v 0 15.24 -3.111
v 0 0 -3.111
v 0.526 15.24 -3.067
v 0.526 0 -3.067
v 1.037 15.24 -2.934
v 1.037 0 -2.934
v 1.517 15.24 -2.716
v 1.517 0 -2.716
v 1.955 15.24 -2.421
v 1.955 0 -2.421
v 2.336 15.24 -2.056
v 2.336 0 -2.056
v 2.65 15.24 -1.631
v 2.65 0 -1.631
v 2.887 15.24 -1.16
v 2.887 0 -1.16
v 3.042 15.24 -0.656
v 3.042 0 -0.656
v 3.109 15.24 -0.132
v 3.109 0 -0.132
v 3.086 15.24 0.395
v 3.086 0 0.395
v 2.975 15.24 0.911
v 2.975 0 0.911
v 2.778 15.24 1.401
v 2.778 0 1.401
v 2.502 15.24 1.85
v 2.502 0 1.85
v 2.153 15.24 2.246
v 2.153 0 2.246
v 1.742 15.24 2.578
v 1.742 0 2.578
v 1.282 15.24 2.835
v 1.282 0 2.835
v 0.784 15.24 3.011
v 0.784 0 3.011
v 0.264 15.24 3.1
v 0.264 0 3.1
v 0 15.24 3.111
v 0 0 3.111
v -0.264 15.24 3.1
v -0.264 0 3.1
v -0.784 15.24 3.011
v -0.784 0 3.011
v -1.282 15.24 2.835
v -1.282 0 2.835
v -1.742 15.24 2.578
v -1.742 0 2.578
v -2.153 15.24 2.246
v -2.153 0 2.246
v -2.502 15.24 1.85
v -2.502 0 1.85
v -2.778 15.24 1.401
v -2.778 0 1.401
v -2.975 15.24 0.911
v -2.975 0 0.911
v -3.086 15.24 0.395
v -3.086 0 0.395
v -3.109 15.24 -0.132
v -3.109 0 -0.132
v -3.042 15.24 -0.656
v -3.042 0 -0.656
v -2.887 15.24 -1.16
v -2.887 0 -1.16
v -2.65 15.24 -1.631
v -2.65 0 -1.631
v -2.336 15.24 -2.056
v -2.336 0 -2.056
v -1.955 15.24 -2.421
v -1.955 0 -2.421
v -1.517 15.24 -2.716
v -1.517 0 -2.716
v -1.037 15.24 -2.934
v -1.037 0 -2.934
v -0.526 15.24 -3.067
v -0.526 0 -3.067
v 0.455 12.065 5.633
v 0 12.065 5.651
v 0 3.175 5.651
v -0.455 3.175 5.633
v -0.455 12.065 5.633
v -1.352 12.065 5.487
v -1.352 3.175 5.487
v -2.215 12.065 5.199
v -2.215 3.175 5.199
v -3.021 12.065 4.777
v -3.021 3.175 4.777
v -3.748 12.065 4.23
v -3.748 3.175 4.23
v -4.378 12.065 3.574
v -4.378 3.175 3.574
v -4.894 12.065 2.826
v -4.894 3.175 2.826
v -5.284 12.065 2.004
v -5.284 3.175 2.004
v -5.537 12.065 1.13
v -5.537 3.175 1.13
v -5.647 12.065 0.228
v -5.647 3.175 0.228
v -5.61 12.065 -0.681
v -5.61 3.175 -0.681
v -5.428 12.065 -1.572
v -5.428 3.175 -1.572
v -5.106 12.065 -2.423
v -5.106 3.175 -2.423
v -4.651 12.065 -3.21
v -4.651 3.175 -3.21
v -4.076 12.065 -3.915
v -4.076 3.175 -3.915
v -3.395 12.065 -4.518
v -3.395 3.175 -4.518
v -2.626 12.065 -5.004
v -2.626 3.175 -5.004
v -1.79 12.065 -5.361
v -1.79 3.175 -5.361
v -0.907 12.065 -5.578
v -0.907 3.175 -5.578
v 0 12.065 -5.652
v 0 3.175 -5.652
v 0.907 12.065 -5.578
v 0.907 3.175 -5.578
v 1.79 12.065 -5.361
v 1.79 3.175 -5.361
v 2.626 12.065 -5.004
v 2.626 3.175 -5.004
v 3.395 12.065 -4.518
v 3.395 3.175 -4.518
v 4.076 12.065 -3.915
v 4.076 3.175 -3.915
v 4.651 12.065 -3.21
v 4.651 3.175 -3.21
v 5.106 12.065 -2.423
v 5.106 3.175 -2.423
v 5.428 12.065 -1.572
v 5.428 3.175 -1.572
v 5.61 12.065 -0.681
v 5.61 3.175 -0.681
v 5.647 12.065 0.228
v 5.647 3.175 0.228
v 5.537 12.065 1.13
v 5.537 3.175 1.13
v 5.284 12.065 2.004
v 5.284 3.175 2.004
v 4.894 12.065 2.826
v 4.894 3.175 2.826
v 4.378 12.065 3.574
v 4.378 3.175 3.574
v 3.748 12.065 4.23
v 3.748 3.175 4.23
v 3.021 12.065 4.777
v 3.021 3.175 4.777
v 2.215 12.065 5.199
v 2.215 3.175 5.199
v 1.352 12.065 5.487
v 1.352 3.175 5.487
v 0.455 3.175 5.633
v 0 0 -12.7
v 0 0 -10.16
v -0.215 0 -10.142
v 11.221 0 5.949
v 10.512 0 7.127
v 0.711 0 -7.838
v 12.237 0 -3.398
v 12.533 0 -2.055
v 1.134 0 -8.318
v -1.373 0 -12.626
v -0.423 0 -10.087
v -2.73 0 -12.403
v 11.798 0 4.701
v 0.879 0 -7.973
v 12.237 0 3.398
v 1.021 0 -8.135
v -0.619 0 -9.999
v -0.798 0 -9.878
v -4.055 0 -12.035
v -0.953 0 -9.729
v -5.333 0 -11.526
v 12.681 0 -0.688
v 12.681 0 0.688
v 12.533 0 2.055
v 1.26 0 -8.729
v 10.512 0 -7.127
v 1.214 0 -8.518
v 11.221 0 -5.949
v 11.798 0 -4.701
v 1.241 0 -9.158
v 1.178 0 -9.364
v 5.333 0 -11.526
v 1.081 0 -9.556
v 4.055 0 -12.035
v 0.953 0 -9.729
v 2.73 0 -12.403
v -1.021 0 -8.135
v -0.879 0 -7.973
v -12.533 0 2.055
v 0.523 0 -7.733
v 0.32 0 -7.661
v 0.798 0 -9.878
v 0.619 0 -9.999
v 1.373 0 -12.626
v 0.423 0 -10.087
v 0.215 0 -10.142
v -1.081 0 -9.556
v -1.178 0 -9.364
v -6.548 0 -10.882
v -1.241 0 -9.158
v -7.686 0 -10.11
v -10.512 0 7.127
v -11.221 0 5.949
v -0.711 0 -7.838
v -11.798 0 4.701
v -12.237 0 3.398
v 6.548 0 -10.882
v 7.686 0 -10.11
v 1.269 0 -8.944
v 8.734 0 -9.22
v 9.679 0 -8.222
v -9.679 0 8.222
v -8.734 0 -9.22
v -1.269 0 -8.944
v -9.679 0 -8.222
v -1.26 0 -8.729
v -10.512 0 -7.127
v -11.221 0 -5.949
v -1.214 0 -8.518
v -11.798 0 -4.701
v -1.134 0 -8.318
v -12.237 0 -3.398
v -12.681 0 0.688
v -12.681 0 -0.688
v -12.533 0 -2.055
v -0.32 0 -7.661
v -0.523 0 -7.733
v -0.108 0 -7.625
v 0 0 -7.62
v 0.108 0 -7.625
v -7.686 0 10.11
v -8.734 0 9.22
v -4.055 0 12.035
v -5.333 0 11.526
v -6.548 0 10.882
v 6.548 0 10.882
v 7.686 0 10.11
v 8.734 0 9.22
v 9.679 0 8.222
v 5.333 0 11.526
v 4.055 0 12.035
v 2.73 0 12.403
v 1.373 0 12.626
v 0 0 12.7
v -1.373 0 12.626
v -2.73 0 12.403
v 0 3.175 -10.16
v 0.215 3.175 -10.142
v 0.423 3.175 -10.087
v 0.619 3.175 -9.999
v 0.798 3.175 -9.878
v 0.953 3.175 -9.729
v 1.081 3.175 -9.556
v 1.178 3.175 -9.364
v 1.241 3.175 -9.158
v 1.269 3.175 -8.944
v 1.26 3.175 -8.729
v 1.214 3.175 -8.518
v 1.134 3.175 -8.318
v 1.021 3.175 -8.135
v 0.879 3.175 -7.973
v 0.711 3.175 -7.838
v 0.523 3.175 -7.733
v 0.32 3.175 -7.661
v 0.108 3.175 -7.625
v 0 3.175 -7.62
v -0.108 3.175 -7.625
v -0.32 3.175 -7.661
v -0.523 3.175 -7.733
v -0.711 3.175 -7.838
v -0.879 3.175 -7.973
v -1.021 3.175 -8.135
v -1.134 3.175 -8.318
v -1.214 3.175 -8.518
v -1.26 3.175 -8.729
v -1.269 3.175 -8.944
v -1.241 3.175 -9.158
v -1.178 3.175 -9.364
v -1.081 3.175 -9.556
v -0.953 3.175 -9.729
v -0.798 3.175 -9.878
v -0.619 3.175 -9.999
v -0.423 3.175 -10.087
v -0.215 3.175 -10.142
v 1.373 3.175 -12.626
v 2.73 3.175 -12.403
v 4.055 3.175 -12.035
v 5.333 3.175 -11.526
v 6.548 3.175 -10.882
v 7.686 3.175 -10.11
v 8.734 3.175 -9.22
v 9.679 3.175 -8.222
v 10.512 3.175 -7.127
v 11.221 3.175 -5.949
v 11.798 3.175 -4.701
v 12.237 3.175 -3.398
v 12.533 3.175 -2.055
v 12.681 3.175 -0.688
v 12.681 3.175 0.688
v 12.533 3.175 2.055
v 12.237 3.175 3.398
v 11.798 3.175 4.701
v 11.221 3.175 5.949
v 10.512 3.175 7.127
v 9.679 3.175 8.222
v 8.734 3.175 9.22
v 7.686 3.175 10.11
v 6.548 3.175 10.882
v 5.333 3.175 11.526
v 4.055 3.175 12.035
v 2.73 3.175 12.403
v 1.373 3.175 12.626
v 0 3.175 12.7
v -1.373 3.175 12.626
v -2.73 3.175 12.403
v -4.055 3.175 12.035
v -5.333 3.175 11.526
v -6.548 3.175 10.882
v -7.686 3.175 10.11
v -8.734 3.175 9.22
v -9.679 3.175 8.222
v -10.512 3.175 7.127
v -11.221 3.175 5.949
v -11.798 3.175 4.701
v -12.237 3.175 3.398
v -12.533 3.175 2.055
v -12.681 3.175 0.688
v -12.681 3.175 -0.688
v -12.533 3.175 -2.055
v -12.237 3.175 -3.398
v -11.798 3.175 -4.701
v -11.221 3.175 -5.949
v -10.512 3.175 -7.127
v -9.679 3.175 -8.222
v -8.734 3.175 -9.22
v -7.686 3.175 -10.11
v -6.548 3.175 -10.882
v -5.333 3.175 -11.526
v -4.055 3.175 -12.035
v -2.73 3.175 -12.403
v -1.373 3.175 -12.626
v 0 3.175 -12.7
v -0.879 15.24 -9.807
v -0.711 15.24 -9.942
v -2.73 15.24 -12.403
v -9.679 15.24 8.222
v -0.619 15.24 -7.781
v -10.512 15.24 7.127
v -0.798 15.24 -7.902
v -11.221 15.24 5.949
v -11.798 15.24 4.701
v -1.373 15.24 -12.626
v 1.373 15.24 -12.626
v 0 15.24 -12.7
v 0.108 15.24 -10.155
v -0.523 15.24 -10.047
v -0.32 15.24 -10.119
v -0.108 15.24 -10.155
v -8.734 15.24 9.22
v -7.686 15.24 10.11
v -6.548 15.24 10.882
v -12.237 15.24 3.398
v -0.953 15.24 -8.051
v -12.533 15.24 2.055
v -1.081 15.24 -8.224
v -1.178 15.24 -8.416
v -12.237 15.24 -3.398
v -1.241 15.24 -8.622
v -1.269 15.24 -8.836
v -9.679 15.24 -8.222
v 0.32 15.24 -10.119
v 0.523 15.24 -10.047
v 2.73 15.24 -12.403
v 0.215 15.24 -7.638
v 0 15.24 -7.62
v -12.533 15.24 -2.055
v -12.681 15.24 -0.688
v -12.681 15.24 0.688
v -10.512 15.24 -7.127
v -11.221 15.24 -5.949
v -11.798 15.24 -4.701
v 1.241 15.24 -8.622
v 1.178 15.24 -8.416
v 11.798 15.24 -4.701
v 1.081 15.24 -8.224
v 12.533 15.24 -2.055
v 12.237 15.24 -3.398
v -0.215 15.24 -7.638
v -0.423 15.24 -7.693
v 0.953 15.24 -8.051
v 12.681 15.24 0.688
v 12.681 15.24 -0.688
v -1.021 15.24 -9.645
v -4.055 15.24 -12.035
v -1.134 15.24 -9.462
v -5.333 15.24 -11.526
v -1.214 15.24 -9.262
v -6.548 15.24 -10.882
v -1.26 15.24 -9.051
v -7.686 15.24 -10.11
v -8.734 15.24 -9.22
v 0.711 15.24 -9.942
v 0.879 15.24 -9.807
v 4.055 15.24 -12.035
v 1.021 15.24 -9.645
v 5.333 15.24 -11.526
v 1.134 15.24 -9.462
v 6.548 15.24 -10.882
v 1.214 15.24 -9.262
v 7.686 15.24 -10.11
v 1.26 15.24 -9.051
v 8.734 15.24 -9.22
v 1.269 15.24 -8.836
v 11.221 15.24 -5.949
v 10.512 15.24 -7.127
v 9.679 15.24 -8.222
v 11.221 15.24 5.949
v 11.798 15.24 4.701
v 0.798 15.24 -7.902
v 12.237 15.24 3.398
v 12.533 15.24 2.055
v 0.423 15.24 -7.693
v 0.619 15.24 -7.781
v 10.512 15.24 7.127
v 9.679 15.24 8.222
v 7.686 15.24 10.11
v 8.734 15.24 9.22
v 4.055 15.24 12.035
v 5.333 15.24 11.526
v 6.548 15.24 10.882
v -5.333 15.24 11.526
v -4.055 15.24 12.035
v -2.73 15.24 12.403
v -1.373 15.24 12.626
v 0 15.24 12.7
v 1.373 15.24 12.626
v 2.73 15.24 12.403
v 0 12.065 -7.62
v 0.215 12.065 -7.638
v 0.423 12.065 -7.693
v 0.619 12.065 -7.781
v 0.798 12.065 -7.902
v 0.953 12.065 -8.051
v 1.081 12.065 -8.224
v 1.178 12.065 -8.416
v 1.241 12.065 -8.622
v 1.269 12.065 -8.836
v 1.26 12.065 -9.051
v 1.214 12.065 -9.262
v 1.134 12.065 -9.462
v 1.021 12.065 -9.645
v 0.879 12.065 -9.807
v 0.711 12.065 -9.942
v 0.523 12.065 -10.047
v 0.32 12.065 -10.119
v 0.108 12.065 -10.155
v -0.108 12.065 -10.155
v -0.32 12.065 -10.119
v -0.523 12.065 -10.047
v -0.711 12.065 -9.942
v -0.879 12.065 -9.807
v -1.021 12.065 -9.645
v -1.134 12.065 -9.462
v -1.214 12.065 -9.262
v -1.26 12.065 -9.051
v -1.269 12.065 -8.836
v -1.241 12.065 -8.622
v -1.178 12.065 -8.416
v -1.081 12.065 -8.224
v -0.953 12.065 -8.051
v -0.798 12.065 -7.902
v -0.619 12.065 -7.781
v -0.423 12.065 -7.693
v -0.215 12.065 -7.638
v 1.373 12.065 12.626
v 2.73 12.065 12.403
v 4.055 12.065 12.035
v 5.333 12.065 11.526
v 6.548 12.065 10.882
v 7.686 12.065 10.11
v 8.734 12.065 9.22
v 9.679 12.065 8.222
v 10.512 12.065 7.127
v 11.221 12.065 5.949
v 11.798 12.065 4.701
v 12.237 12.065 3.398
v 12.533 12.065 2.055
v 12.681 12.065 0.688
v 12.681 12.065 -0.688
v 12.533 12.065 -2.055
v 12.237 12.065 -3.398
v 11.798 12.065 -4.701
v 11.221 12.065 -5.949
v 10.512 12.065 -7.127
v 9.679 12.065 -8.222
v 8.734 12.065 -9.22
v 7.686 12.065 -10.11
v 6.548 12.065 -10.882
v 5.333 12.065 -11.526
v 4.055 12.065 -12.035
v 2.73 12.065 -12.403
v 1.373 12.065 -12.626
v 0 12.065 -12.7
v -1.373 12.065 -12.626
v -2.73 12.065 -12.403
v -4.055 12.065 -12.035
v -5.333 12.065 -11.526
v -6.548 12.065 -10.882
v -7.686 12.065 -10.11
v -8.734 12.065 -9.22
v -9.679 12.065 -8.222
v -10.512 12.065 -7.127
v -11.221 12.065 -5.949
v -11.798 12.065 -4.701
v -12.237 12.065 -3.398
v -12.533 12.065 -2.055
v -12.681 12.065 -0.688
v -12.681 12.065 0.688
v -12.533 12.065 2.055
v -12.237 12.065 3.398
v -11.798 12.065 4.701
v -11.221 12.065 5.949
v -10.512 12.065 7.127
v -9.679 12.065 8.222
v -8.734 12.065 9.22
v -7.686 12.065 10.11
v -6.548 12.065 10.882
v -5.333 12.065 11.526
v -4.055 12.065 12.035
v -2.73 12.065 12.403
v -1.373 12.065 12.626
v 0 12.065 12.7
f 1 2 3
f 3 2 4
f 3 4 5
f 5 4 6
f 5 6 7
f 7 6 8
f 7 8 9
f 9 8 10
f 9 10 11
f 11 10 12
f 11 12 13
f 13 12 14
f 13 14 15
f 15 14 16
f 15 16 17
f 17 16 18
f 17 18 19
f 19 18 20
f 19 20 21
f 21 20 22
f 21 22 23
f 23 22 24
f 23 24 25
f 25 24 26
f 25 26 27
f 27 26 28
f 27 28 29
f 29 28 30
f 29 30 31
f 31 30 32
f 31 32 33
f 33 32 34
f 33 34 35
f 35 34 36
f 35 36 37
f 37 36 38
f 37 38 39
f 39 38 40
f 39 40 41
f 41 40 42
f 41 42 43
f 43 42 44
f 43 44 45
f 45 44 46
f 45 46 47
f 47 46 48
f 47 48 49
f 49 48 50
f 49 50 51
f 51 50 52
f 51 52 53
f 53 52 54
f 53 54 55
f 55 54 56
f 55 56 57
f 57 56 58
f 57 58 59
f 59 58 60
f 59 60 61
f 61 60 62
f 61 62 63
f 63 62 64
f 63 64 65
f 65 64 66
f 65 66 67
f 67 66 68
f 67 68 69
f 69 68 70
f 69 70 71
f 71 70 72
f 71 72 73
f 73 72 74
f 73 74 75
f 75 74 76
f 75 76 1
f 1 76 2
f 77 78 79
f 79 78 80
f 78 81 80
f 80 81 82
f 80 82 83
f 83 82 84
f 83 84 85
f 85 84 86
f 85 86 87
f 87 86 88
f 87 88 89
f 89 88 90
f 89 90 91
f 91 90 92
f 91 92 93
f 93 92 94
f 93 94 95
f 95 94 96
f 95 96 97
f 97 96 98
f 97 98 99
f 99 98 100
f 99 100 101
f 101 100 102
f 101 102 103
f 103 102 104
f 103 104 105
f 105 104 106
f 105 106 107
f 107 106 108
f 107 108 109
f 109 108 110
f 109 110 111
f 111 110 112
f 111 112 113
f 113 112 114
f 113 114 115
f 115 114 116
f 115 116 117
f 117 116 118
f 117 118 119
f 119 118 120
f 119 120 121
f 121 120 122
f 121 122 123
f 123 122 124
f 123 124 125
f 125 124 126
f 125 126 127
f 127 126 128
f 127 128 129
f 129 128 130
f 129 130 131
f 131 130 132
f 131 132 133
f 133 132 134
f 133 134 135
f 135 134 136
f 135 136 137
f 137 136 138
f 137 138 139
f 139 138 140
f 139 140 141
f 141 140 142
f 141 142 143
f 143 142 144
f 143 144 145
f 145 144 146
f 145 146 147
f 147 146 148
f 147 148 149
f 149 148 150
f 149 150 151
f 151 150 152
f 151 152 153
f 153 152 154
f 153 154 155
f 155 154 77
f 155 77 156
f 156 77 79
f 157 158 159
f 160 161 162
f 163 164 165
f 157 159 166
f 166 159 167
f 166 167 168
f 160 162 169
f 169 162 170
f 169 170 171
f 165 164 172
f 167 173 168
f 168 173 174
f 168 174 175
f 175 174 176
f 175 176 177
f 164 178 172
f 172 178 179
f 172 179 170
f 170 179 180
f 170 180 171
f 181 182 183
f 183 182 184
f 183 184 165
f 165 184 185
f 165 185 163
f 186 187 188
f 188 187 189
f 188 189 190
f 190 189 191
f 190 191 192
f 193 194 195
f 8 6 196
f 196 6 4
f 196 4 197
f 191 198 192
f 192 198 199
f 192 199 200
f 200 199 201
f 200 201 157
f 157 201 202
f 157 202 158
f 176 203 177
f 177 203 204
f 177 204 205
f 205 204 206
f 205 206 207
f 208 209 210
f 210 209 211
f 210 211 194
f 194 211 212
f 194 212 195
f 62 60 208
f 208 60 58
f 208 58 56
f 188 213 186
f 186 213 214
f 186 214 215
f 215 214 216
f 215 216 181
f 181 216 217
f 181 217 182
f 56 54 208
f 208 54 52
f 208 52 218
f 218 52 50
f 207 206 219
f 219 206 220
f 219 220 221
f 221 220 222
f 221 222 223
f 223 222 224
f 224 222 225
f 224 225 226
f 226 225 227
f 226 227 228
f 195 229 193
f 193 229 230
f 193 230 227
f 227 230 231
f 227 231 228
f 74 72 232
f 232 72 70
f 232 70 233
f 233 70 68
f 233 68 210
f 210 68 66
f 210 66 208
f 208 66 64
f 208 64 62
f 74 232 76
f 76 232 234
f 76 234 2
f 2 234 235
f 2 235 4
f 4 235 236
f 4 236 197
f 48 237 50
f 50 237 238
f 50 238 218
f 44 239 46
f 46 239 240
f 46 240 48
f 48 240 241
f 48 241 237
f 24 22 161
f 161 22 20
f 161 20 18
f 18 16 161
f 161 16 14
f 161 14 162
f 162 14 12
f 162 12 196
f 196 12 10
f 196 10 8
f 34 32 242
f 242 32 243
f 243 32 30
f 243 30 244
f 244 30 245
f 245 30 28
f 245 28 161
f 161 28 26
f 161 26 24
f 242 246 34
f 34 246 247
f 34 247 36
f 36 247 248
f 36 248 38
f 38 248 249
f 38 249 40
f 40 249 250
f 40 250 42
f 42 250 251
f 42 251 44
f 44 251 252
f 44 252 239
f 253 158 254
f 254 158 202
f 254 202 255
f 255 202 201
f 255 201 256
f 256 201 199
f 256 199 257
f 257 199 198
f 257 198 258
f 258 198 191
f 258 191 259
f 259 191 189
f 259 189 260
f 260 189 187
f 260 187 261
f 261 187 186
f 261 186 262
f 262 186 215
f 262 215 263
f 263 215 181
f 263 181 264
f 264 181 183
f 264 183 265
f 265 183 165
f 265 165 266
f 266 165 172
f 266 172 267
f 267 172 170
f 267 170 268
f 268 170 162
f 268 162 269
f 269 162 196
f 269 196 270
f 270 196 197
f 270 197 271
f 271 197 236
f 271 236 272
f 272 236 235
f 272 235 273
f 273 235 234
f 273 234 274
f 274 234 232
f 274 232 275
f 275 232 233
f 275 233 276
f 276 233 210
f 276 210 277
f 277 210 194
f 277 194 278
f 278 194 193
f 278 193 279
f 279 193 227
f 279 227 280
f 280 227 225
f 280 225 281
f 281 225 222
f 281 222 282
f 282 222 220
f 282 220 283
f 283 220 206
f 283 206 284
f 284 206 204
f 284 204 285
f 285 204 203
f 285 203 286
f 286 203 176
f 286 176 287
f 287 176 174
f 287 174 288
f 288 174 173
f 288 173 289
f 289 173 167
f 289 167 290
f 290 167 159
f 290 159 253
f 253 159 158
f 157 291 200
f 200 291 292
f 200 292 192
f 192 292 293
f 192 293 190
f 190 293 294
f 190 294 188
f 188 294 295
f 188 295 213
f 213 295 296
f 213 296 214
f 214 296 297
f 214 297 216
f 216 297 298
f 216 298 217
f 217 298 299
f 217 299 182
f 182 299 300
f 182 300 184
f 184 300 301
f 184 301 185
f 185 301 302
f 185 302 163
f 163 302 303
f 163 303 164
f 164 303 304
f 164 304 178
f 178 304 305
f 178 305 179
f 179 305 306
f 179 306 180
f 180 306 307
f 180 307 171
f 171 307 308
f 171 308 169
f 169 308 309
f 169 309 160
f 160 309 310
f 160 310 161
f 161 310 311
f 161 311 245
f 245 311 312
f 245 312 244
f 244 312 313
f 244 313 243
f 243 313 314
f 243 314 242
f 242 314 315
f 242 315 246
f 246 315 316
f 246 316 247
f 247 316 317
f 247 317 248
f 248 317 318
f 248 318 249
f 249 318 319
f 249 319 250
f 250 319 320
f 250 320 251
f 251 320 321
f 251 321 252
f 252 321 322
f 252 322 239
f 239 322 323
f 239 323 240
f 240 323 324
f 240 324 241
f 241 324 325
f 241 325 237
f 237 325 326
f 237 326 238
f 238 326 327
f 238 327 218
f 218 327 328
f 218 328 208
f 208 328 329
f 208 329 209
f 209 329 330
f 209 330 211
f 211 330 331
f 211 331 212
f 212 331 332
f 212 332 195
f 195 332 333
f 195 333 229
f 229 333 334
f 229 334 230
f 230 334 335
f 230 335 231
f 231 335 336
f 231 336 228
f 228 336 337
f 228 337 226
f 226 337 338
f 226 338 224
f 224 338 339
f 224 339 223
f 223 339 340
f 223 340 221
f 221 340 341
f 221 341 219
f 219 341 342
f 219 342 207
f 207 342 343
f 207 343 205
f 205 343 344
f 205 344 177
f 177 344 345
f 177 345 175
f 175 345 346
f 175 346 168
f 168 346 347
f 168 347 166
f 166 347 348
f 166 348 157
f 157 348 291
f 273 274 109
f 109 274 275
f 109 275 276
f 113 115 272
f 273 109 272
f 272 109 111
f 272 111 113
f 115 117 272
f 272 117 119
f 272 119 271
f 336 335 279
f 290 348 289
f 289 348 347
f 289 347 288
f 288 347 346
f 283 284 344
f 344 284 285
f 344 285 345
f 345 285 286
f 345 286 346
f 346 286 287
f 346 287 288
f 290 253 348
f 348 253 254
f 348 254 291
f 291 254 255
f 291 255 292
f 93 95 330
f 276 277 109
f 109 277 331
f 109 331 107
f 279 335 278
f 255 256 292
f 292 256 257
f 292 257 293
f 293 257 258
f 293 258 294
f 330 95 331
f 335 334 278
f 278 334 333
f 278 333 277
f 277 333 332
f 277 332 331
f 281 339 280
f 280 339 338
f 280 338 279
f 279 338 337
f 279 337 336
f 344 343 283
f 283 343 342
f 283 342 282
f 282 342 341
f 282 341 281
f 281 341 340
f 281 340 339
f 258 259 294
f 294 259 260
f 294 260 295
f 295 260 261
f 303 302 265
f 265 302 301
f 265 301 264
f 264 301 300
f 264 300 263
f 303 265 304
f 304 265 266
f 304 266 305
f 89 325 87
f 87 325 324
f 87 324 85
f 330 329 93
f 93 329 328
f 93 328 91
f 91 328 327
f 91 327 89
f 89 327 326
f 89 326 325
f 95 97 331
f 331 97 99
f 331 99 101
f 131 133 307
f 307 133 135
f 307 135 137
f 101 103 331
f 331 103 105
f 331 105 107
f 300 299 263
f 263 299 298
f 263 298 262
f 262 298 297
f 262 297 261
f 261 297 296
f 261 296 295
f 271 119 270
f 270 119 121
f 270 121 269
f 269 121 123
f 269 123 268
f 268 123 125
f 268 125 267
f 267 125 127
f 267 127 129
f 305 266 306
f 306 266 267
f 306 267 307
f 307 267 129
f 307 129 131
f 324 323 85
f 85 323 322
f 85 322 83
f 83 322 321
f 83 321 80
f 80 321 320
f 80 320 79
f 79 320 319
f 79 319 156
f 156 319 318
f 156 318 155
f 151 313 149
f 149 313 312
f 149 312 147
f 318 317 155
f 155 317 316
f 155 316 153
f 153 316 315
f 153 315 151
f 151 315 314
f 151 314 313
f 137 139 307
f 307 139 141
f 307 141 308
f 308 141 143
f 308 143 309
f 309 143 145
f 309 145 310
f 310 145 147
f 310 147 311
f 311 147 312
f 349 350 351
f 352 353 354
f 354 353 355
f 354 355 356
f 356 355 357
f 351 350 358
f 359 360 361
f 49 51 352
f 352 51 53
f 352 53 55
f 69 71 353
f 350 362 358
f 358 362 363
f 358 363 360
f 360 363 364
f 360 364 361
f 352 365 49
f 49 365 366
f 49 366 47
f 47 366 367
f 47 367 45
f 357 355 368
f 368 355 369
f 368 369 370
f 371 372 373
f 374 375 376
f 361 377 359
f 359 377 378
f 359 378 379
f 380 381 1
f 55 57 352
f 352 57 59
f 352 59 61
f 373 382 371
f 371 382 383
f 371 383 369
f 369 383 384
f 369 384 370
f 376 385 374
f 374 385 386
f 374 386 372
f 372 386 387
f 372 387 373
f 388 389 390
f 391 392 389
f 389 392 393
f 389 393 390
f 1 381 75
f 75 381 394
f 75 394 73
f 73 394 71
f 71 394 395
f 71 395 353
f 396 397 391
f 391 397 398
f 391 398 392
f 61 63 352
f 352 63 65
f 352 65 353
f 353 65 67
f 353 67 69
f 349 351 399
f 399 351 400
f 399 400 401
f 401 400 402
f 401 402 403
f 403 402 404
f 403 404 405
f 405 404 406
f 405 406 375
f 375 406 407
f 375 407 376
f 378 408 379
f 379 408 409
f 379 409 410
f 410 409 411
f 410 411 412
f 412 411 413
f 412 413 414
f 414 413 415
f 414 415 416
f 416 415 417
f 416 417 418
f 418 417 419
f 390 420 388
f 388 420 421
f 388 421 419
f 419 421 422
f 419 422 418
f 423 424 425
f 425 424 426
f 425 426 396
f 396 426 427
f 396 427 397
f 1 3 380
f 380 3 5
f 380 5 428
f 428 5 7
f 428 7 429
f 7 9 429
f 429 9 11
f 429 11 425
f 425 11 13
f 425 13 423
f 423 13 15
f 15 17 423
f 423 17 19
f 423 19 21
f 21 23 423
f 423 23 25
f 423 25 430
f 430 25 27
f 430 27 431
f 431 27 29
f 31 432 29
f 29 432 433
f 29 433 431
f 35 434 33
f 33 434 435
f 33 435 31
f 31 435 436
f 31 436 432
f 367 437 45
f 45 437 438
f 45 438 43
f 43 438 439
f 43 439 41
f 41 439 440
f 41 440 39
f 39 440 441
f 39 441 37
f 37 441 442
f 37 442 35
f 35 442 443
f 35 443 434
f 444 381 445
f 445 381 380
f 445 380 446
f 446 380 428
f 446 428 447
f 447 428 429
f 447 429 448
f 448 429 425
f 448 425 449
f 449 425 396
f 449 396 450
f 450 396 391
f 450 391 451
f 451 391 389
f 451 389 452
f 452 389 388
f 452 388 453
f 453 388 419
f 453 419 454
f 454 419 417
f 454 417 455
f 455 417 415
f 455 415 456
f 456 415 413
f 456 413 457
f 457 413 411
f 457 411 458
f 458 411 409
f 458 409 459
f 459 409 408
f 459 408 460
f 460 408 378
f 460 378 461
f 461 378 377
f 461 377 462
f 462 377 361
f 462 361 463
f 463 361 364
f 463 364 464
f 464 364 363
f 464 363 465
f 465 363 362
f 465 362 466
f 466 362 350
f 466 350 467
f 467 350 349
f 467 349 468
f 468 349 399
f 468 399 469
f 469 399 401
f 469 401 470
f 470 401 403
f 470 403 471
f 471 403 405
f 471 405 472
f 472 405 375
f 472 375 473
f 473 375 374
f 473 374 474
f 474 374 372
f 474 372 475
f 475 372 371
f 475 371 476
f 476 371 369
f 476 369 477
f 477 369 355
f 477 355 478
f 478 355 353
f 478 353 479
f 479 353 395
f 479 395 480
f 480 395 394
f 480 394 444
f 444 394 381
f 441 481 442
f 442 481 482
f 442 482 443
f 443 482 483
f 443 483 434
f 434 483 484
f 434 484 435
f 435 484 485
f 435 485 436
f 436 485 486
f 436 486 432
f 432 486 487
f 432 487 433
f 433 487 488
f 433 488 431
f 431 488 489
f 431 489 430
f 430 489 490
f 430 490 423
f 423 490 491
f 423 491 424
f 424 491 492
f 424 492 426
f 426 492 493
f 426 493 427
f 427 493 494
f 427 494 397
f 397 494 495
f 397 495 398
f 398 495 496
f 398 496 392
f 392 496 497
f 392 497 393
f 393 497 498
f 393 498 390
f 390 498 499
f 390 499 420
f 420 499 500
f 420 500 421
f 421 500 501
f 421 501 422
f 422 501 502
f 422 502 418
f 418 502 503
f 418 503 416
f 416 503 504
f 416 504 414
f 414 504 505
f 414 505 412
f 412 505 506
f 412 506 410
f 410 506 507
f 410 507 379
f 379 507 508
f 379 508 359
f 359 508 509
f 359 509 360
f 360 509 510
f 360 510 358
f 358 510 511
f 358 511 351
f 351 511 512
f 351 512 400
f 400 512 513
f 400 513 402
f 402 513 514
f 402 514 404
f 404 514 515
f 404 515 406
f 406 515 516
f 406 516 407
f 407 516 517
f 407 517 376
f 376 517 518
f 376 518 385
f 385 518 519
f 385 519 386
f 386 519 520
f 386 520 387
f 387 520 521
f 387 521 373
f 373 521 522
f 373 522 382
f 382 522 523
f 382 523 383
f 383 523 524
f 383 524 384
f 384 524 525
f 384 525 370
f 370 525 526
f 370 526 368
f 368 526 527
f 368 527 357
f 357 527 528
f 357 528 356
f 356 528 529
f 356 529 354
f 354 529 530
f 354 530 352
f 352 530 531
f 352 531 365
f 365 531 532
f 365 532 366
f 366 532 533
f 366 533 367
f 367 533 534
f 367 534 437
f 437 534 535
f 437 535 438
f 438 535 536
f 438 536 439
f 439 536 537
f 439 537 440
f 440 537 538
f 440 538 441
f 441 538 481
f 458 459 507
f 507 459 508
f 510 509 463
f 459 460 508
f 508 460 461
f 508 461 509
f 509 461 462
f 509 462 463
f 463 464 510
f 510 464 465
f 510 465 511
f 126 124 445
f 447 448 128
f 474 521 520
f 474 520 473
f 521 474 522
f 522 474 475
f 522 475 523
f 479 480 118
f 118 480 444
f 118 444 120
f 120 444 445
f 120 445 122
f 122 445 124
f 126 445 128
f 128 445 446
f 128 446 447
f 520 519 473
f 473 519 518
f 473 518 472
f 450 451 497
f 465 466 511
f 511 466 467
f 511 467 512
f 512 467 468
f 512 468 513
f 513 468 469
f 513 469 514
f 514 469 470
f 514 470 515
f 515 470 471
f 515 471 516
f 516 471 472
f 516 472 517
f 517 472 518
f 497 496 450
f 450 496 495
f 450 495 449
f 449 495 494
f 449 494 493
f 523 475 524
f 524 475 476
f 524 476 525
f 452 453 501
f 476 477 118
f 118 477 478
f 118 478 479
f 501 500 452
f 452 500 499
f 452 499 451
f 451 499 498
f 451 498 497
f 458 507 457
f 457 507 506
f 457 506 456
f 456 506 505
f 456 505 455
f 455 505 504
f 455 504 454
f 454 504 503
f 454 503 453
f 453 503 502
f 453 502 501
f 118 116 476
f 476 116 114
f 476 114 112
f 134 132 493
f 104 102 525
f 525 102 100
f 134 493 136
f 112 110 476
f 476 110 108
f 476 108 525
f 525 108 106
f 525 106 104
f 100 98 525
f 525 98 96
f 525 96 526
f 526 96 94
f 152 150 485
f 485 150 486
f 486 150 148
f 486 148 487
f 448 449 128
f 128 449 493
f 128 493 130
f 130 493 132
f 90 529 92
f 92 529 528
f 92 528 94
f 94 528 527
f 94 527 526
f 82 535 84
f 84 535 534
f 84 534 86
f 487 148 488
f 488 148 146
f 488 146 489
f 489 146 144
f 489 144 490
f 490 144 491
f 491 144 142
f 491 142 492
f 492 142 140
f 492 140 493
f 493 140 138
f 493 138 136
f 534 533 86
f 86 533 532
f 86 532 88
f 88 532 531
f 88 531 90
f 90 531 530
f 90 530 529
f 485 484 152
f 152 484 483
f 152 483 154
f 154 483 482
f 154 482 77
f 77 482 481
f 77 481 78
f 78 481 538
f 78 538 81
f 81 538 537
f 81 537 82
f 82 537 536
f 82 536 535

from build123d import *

# Parameters (mm, degrees)
SKETCH1_R           = 5.6515
SKETCH1_R_2         = 3.1115
BOSS_EXTRUDE1_DEPTH = 7.62
SKETCH1_4_R         = 12.7
SKETCH1_4_R_2       = 5.6515
SKETCH1_4_R_3       = 1.27
BOSS_EXTRUDE2_DEPTH = 3.175


with BuildPart() as part:
    # Sketch1 → Boss-Extrude1 (new body)
    with BuildSketch(Plane(origin=(0, 0, 0), x_dir=(1, 0, 0), z_dir=(0, 1, 0))):
        Circle(SKETCH1_R)
        Circle(SKETCH1_R_2, mode=Mode.SUBTRACT)
    boss_extrude1 = extrude(amount=BOSS_EXTRUDE1_DEPTH)

    # Sketch1<4> → Boss-Extrude2 (add)
    with BuildSketch(Plane(origin=(0, 0, 0), x_dir=(1, 0, 0), z_dir=(0, 1, 0))):
        Circle(SKETCH1_4_R)
        Circle(SKETCH1_4_R_2, mode=Mode.SUBTRACT)
        with Locations((0, 8.89)):
            Circle(SKETCH1_4_R_3, mode=Mode.SUBTRACT)
    boss_extrude2 = extrude(amount=BOSS_EXTRUDE2_DEPTH)

    # Mirror1: Boss-Extrude1, Boss-Extrude2 across plane
    add(boss_extrude1.mirror(Plane.ZX.offset(7.62)))
    add(boss_extrude2.mirror(Plane.ZX.offset(7.62)))


solid = part.part
